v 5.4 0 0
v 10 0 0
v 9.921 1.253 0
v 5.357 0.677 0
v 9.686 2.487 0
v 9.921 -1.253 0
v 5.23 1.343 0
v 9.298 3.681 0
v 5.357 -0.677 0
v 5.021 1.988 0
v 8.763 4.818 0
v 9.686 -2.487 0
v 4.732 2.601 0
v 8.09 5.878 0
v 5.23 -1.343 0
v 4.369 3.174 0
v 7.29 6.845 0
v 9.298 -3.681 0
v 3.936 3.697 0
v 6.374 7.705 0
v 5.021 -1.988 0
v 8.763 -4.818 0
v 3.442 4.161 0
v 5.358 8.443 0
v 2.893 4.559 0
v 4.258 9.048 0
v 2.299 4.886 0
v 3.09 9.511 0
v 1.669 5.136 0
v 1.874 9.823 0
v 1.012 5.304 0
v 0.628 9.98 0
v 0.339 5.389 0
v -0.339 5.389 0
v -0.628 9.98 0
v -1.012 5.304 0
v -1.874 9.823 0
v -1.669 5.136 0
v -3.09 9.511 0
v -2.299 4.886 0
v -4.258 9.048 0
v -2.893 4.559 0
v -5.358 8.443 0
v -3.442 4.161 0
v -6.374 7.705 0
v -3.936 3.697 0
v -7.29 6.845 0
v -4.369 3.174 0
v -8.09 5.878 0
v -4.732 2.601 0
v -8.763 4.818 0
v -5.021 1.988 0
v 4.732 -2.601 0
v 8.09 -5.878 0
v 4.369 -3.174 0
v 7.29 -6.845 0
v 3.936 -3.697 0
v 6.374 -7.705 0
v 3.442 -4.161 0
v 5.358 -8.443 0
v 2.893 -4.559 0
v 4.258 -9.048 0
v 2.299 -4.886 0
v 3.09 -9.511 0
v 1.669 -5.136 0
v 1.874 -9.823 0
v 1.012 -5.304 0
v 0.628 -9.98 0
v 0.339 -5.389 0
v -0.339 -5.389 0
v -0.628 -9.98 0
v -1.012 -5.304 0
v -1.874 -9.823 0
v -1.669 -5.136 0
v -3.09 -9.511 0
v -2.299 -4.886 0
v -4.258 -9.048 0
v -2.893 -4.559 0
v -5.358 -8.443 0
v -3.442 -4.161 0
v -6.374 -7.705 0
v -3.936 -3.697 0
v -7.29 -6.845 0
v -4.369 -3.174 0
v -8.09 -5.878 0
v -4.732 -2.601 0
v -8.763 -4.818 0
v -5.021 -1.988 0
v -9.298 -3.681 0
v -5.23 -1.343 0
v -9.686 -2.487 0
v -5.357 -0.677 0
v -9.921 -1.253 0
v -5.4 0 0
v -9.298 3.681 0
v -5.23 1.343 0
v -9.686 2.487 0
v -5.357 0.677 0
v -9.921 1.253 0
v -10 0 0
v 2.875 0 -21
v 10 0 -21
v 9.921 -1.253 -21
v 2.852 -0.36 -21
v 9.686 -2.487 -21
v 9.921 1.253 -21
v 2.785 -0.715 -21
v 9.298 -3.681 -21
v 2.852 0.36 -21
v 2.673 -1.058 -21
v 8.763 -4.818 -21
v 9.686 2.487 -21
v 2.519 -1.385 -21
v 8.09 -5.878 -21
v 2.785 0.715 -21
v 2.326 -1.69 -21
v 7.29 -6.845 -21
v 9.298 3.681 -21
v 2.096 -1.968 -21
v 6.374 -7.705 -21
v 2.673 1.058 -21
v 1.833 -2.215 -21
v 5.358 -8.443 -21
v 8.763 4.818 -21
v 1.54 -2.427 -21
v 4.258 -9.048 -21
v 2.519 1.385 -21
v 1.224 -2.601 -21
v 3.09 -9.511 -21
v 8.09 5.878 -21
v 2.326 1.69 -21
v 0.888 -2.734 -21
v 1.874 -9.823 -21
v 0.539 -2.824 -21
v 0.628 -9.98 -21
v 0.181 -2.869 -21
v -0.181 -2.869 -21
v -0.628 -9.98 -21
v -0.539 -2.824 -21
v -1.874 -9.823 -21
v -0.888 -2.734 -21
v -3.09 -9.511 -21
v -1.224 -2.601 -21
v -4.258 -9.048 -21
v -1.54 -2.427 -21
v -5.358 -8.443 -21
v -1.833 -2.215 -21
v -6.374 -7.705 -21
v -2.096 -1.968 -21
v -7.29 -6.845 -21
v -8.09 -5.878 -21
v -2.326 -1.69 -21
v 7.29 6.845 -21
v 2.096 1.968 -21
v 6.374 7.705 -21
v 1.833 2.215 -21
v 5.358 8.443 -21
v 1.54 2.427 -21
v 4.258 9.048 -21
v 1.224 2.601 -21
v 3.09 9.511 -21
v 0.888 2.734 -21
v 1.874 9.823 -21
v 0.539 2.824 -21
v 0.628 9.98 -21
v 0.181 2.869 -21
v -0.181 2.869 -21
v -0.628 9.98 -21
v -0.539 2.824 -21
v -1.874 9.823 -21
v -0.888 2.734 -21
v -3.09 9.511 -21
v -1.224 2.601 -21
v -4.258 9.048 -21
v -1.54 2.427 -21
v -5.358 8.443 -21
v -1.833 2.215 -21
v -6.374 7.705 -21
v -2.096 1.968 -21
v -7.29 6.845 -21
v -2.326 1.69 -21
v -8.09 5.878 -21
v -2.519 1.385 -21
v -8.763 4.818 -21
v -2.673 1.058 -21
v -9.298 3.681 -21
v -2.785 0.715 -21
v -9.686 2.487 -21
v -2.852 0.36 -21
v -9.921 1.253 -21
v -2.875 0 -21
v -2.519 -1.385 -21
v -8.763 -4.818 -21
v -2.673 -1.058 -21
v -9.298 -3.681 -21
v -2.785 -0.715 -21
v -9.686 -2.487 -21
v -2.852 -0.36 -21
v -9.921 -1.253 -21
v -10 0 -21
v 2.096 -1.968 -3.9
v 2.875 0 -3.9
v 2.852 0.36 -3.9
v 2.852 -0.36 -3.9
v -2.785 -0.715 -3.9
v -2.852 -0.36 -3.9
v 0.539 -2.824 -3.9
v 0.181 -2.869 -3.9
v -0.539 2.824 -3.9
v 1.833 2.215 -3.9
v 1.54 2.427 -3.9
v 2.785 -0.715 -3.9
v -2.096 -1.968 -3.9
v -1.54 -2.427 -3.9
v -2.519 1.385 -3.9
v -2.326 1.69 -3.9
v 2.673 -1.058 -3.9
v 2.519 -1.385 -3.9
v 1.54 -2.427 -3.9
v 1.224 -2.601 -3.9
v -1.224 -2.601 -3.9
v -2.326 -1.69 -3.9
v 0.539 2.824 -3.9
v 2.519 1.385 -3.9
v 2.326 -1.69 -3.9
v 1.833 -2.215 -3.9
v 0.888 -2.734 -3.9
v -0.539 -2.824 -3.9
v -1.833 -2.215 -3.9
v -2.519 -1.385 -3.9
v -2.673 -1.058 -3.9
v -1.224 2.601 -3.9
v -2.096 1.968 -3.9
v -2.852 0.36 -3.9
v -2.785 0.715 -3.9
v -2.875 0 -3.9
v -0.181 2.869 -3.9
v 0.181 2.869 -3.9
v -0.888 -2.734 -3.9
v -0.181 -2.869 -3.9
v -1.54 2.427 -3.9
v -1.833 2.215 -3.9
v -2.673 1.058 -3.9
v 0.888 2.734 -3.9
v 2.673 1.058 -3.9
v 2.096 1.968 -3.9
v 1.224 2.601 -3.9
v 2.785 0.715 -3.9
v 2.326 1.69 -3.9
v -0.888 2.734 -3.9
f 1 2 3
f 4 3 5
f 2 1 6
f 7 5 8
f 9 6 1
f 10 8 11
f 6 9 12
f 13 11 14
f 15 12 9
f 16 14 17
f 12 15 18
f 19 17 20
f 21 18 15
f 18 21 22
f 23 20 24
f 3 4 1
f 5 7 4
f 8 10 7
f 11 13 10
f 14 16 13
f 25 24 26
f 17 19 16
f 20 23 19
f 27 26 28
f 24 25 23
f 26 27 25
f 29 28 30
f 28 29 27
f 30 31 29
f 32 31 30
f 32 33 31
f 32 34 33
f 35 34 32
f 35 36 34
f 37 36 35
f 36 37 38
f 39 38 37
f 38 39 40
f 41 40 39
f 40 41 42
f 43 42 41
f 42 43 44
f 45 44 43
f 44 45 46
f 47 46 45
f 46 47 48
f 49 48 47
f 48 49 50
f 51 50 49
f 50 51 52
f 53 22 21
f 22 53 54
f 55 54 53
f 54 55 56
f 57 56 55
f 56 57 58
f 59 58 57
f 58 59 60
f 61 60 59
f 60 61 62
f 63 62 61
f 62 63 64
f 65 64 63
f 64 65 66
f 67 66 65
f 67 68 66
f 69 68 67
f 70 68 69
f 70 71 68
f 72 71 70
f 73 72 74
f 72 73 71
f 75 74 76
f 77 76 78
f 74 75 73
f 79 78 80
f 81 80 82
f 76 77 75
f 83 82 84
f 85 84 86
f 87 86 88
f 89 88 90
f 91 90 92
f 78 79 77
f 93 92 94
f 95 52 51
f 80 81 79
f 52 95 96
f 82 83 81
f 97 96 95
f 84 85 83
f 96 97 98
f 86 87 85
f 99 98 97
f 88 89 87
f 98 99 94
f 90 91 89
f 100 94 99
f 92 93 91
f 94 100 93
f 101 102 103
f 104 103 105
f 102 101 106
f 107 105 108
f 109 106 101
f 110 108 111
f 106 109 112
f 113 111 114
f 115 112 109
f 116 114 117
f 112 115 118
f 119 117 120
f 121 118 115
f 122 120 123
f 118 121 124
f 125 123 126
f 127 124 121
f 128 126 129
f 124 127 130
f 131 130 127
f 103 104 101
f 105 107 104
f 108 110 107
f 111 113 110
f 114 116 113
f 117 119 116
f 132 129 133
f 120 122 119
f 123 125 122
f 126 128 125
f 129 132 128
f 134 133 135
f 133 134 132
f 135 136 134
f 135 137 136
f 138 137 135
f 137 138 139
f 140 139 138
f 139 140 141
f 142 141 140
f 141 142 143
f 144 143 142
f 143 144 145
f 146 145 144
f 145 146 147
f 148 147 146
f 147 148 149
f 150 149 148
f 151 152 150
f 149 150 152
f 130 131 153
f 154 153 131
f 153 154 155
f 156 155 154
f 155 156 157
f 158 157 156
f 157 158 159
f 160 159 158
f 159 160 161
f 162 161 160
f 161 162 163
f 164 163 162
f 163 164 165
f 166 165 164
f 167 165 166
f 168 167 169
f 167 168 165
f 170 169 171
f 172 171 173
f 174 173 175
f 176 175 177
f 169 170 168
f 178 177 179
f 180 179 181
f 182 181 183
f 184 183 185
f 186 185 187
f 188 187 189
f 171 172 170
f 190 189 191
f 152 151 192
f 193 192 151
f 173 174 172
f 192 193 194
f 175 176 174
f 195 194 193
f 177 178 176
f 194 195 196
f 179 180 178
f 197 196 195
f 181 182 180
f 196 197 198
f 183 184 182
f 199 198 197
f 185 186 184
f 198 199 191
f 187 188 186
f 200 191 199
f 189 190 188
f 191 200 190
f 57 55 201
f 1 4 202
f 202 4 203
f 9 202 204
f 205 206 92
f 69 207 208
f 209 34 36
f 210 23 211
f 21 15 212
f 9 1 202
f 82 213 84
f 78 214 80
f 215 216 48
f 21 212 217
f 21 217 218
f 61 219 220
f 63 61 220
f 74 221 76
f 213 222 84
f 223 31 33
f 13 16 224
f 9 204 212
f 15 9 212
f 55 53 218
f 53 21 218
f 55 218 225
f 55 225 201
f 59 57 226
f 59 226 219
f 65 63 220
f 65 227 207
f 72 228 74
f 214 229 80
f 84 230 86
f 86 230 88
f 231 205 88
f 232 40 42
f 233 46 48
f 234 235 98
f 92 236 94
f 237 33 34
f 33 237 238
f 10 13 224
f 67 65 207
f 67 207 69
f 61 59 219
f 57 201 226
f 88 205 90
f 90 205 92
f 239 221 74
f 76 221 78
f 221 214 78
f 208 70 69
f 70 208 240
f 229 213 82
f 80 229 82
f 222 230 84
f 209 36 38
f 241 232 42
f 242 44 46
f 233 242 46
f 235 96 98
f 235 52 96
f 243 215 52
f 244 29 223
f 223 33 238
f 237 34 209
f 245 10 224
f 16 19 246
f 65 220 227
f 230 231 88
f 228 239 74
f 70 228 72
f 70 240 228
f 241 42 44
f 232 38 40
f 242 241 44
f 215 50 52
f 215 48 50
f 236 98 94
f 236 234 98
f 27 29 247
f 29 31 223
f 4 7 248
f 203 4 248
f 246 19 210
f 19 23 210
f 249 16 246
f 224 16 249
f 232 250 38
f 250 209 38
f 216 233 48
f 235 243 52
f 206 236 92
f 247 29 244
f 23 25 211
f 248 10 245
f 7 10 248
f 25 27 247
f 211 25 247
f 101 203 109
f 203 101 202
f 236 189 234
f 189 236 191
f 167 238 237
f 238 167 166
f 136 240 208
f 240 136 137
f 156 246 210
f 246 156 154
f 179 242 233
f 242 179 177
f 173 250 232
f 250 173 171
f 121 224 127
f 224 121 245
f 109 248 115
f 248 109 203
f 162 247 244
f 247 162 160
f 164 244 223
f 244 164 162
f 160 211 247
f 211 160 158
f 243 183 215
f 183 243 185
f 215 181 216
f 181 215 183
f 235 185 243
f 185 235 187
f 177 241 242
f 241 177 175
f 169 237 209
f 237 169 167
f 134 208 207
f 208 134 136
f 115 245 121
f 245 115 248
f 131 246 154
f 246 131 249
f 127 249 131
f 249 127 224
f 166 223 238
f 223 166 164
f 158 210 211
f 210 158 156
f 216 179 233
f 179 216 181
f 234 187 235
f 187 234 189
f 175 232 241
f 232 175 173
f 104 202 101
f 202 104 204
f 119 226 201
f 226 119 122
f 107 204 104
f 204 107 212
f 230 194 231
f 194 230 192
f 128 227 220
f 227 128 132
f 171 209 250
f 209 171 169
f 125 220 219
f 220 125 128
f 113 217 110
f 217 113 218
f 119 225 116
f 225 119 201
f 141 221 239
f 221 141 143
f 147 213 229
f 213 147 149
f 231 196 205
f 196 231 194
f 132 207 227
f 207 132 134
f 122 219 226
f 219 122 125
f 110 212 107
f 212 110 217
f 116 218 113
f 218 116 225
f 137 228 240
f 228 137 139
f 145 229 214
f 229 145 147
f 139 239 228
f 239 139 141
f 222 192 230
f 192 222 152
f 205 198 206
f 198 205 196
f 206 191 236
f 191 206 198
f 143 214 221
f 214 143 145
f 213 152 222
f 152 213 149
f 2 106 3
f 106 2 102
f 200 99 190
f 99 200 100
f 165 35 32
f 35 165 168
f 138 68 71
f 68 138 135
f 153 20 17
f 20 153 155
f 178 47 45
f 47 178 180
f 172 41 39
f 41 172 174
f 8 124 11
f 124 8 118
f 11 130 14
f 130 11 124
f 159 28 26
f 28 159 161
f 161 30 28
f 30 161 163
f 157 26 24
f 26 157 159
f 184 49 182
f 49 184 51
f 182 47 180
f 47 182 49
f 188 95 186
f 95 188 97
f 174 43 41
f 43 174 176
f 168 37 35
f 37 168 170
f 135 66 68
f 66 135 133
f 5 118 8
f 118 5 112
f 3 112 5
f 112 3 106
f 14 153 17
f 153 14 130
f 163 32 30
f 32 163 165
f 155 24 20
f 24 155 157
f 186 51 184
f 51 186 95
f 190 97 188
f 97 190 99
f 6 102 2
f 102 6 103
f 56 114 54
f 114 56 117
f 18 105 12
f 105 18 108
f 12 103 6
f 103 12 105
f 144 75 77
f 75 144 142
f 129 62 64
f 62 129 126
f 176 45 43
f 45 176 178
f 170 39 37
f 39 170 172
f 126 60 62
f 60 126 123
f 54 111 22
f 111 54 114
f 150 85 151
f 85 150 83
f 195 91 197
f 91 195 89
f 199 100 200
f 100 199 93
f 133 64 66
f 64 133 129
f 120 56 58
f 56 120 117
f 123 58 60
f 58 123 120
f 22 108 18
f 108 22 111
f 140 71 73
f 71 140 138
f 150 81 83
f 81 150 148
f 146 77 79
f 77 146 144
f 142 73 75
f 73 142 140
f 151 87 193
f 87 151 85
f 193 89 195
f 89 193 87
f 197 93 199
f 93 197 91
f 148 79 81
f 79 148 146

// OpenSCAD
$fn = 50;


difference() {
	union() {
		translate(v = [0, 0, -21.0000000000]) {
			cylinder(h = 21, r = 10.0000000000);
		}
		cylinder(h = 0, r = 13.0000000000);
	}
	union() {
		translate(v = [0, 0, 0]) {
			rotate(a = [0, 0, 0]) {
				difference() {
					union() {
						#translate(v = [0, 0, -21.0000000000]) {
							cylinder(h = 21, r = 2.6000000000);
						}
						#translate(v = [0, 0, -3.9000000000]) {
							cylinder(h = 3.9000000000, r = 10.0000000000, r1 = 2.8750000000, r2 = 5.4000000000);
						}
						#translate(v = [0, 0, -21.0000000000]) {
							cylinder(h = 21, r = 2.8750000000);
						}
						#translate(v = [0, 0, -21.0000000000]) {
							cylinder(h = 21, r = 2.6000000000);
						}
					}
					union();
				}
			}
		}
	}
}
